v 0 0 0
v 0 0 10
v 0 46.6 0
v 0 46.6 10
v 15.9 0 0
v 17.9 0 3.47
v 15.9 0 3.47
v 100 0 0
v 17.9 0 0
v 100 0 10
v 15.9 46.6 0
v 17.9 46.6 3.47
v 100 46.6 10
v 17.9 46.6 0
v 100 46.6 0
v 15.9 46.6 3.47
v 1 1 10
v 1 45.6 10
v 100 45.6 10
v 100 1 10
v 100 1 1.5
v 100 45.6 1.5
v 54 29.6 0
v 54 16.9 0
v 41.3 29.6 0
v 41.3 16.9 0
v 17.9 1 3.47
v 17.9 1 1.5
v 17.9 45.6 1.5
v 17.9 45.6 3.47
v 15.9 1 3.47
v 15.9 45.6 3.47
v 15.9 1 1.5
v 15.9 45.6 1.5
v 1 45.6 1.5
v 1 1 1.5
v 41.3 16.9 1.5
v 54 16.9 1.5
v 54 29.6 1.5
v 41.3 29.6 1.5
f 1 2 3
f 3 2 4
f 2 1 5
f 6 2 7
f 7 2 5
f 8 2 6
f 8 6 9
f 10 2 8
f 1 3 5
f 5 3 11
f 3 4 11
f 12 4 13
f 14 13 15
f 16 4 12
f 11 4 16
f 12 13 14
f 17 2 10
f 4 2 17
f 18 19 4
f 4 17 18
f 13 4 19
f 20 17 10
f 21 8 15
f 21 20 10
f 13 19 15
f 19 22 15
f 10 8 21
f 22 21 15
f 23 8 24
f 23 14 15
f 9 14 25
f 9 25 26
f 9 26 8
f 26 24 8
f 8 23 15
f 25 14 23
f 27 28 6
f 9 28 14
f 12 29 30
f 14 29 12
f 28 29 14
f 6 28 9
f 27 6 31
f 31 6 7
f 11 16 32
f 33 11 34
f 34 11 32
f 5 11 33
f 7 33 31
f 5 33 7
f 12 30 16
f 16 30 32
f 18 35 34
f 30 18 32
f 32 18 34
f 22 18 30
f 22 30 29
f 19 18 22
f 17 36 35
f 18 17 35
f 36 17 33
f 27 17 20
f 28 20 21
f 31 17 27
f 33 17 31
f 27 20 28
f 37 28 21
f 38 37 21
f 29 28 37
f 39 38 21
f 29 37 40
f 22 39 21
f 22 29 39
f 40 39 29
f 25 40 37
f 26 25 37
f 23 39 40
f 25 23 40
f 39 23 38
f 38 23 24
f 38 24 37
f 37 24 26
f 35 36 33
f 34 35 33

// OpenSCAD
difference() {
	union() {
		cube([100, 46.6, 1.5], 0);
		cube([100, 1.0, 10], 0);
		translate([0, 45.6, 0]) {
			cube([100, 1.0, 10], 0);
		}
		cube([1.0, 46.6, 10], 0);
	}
	translate([15.9, 0, 0]) {
		cube([2, 46.6, 3.47], 0);
	}
	translate([41.3, 16.9, 0]) {
		cube([12.7, 12.7, 1.5], 0);
	}
}
